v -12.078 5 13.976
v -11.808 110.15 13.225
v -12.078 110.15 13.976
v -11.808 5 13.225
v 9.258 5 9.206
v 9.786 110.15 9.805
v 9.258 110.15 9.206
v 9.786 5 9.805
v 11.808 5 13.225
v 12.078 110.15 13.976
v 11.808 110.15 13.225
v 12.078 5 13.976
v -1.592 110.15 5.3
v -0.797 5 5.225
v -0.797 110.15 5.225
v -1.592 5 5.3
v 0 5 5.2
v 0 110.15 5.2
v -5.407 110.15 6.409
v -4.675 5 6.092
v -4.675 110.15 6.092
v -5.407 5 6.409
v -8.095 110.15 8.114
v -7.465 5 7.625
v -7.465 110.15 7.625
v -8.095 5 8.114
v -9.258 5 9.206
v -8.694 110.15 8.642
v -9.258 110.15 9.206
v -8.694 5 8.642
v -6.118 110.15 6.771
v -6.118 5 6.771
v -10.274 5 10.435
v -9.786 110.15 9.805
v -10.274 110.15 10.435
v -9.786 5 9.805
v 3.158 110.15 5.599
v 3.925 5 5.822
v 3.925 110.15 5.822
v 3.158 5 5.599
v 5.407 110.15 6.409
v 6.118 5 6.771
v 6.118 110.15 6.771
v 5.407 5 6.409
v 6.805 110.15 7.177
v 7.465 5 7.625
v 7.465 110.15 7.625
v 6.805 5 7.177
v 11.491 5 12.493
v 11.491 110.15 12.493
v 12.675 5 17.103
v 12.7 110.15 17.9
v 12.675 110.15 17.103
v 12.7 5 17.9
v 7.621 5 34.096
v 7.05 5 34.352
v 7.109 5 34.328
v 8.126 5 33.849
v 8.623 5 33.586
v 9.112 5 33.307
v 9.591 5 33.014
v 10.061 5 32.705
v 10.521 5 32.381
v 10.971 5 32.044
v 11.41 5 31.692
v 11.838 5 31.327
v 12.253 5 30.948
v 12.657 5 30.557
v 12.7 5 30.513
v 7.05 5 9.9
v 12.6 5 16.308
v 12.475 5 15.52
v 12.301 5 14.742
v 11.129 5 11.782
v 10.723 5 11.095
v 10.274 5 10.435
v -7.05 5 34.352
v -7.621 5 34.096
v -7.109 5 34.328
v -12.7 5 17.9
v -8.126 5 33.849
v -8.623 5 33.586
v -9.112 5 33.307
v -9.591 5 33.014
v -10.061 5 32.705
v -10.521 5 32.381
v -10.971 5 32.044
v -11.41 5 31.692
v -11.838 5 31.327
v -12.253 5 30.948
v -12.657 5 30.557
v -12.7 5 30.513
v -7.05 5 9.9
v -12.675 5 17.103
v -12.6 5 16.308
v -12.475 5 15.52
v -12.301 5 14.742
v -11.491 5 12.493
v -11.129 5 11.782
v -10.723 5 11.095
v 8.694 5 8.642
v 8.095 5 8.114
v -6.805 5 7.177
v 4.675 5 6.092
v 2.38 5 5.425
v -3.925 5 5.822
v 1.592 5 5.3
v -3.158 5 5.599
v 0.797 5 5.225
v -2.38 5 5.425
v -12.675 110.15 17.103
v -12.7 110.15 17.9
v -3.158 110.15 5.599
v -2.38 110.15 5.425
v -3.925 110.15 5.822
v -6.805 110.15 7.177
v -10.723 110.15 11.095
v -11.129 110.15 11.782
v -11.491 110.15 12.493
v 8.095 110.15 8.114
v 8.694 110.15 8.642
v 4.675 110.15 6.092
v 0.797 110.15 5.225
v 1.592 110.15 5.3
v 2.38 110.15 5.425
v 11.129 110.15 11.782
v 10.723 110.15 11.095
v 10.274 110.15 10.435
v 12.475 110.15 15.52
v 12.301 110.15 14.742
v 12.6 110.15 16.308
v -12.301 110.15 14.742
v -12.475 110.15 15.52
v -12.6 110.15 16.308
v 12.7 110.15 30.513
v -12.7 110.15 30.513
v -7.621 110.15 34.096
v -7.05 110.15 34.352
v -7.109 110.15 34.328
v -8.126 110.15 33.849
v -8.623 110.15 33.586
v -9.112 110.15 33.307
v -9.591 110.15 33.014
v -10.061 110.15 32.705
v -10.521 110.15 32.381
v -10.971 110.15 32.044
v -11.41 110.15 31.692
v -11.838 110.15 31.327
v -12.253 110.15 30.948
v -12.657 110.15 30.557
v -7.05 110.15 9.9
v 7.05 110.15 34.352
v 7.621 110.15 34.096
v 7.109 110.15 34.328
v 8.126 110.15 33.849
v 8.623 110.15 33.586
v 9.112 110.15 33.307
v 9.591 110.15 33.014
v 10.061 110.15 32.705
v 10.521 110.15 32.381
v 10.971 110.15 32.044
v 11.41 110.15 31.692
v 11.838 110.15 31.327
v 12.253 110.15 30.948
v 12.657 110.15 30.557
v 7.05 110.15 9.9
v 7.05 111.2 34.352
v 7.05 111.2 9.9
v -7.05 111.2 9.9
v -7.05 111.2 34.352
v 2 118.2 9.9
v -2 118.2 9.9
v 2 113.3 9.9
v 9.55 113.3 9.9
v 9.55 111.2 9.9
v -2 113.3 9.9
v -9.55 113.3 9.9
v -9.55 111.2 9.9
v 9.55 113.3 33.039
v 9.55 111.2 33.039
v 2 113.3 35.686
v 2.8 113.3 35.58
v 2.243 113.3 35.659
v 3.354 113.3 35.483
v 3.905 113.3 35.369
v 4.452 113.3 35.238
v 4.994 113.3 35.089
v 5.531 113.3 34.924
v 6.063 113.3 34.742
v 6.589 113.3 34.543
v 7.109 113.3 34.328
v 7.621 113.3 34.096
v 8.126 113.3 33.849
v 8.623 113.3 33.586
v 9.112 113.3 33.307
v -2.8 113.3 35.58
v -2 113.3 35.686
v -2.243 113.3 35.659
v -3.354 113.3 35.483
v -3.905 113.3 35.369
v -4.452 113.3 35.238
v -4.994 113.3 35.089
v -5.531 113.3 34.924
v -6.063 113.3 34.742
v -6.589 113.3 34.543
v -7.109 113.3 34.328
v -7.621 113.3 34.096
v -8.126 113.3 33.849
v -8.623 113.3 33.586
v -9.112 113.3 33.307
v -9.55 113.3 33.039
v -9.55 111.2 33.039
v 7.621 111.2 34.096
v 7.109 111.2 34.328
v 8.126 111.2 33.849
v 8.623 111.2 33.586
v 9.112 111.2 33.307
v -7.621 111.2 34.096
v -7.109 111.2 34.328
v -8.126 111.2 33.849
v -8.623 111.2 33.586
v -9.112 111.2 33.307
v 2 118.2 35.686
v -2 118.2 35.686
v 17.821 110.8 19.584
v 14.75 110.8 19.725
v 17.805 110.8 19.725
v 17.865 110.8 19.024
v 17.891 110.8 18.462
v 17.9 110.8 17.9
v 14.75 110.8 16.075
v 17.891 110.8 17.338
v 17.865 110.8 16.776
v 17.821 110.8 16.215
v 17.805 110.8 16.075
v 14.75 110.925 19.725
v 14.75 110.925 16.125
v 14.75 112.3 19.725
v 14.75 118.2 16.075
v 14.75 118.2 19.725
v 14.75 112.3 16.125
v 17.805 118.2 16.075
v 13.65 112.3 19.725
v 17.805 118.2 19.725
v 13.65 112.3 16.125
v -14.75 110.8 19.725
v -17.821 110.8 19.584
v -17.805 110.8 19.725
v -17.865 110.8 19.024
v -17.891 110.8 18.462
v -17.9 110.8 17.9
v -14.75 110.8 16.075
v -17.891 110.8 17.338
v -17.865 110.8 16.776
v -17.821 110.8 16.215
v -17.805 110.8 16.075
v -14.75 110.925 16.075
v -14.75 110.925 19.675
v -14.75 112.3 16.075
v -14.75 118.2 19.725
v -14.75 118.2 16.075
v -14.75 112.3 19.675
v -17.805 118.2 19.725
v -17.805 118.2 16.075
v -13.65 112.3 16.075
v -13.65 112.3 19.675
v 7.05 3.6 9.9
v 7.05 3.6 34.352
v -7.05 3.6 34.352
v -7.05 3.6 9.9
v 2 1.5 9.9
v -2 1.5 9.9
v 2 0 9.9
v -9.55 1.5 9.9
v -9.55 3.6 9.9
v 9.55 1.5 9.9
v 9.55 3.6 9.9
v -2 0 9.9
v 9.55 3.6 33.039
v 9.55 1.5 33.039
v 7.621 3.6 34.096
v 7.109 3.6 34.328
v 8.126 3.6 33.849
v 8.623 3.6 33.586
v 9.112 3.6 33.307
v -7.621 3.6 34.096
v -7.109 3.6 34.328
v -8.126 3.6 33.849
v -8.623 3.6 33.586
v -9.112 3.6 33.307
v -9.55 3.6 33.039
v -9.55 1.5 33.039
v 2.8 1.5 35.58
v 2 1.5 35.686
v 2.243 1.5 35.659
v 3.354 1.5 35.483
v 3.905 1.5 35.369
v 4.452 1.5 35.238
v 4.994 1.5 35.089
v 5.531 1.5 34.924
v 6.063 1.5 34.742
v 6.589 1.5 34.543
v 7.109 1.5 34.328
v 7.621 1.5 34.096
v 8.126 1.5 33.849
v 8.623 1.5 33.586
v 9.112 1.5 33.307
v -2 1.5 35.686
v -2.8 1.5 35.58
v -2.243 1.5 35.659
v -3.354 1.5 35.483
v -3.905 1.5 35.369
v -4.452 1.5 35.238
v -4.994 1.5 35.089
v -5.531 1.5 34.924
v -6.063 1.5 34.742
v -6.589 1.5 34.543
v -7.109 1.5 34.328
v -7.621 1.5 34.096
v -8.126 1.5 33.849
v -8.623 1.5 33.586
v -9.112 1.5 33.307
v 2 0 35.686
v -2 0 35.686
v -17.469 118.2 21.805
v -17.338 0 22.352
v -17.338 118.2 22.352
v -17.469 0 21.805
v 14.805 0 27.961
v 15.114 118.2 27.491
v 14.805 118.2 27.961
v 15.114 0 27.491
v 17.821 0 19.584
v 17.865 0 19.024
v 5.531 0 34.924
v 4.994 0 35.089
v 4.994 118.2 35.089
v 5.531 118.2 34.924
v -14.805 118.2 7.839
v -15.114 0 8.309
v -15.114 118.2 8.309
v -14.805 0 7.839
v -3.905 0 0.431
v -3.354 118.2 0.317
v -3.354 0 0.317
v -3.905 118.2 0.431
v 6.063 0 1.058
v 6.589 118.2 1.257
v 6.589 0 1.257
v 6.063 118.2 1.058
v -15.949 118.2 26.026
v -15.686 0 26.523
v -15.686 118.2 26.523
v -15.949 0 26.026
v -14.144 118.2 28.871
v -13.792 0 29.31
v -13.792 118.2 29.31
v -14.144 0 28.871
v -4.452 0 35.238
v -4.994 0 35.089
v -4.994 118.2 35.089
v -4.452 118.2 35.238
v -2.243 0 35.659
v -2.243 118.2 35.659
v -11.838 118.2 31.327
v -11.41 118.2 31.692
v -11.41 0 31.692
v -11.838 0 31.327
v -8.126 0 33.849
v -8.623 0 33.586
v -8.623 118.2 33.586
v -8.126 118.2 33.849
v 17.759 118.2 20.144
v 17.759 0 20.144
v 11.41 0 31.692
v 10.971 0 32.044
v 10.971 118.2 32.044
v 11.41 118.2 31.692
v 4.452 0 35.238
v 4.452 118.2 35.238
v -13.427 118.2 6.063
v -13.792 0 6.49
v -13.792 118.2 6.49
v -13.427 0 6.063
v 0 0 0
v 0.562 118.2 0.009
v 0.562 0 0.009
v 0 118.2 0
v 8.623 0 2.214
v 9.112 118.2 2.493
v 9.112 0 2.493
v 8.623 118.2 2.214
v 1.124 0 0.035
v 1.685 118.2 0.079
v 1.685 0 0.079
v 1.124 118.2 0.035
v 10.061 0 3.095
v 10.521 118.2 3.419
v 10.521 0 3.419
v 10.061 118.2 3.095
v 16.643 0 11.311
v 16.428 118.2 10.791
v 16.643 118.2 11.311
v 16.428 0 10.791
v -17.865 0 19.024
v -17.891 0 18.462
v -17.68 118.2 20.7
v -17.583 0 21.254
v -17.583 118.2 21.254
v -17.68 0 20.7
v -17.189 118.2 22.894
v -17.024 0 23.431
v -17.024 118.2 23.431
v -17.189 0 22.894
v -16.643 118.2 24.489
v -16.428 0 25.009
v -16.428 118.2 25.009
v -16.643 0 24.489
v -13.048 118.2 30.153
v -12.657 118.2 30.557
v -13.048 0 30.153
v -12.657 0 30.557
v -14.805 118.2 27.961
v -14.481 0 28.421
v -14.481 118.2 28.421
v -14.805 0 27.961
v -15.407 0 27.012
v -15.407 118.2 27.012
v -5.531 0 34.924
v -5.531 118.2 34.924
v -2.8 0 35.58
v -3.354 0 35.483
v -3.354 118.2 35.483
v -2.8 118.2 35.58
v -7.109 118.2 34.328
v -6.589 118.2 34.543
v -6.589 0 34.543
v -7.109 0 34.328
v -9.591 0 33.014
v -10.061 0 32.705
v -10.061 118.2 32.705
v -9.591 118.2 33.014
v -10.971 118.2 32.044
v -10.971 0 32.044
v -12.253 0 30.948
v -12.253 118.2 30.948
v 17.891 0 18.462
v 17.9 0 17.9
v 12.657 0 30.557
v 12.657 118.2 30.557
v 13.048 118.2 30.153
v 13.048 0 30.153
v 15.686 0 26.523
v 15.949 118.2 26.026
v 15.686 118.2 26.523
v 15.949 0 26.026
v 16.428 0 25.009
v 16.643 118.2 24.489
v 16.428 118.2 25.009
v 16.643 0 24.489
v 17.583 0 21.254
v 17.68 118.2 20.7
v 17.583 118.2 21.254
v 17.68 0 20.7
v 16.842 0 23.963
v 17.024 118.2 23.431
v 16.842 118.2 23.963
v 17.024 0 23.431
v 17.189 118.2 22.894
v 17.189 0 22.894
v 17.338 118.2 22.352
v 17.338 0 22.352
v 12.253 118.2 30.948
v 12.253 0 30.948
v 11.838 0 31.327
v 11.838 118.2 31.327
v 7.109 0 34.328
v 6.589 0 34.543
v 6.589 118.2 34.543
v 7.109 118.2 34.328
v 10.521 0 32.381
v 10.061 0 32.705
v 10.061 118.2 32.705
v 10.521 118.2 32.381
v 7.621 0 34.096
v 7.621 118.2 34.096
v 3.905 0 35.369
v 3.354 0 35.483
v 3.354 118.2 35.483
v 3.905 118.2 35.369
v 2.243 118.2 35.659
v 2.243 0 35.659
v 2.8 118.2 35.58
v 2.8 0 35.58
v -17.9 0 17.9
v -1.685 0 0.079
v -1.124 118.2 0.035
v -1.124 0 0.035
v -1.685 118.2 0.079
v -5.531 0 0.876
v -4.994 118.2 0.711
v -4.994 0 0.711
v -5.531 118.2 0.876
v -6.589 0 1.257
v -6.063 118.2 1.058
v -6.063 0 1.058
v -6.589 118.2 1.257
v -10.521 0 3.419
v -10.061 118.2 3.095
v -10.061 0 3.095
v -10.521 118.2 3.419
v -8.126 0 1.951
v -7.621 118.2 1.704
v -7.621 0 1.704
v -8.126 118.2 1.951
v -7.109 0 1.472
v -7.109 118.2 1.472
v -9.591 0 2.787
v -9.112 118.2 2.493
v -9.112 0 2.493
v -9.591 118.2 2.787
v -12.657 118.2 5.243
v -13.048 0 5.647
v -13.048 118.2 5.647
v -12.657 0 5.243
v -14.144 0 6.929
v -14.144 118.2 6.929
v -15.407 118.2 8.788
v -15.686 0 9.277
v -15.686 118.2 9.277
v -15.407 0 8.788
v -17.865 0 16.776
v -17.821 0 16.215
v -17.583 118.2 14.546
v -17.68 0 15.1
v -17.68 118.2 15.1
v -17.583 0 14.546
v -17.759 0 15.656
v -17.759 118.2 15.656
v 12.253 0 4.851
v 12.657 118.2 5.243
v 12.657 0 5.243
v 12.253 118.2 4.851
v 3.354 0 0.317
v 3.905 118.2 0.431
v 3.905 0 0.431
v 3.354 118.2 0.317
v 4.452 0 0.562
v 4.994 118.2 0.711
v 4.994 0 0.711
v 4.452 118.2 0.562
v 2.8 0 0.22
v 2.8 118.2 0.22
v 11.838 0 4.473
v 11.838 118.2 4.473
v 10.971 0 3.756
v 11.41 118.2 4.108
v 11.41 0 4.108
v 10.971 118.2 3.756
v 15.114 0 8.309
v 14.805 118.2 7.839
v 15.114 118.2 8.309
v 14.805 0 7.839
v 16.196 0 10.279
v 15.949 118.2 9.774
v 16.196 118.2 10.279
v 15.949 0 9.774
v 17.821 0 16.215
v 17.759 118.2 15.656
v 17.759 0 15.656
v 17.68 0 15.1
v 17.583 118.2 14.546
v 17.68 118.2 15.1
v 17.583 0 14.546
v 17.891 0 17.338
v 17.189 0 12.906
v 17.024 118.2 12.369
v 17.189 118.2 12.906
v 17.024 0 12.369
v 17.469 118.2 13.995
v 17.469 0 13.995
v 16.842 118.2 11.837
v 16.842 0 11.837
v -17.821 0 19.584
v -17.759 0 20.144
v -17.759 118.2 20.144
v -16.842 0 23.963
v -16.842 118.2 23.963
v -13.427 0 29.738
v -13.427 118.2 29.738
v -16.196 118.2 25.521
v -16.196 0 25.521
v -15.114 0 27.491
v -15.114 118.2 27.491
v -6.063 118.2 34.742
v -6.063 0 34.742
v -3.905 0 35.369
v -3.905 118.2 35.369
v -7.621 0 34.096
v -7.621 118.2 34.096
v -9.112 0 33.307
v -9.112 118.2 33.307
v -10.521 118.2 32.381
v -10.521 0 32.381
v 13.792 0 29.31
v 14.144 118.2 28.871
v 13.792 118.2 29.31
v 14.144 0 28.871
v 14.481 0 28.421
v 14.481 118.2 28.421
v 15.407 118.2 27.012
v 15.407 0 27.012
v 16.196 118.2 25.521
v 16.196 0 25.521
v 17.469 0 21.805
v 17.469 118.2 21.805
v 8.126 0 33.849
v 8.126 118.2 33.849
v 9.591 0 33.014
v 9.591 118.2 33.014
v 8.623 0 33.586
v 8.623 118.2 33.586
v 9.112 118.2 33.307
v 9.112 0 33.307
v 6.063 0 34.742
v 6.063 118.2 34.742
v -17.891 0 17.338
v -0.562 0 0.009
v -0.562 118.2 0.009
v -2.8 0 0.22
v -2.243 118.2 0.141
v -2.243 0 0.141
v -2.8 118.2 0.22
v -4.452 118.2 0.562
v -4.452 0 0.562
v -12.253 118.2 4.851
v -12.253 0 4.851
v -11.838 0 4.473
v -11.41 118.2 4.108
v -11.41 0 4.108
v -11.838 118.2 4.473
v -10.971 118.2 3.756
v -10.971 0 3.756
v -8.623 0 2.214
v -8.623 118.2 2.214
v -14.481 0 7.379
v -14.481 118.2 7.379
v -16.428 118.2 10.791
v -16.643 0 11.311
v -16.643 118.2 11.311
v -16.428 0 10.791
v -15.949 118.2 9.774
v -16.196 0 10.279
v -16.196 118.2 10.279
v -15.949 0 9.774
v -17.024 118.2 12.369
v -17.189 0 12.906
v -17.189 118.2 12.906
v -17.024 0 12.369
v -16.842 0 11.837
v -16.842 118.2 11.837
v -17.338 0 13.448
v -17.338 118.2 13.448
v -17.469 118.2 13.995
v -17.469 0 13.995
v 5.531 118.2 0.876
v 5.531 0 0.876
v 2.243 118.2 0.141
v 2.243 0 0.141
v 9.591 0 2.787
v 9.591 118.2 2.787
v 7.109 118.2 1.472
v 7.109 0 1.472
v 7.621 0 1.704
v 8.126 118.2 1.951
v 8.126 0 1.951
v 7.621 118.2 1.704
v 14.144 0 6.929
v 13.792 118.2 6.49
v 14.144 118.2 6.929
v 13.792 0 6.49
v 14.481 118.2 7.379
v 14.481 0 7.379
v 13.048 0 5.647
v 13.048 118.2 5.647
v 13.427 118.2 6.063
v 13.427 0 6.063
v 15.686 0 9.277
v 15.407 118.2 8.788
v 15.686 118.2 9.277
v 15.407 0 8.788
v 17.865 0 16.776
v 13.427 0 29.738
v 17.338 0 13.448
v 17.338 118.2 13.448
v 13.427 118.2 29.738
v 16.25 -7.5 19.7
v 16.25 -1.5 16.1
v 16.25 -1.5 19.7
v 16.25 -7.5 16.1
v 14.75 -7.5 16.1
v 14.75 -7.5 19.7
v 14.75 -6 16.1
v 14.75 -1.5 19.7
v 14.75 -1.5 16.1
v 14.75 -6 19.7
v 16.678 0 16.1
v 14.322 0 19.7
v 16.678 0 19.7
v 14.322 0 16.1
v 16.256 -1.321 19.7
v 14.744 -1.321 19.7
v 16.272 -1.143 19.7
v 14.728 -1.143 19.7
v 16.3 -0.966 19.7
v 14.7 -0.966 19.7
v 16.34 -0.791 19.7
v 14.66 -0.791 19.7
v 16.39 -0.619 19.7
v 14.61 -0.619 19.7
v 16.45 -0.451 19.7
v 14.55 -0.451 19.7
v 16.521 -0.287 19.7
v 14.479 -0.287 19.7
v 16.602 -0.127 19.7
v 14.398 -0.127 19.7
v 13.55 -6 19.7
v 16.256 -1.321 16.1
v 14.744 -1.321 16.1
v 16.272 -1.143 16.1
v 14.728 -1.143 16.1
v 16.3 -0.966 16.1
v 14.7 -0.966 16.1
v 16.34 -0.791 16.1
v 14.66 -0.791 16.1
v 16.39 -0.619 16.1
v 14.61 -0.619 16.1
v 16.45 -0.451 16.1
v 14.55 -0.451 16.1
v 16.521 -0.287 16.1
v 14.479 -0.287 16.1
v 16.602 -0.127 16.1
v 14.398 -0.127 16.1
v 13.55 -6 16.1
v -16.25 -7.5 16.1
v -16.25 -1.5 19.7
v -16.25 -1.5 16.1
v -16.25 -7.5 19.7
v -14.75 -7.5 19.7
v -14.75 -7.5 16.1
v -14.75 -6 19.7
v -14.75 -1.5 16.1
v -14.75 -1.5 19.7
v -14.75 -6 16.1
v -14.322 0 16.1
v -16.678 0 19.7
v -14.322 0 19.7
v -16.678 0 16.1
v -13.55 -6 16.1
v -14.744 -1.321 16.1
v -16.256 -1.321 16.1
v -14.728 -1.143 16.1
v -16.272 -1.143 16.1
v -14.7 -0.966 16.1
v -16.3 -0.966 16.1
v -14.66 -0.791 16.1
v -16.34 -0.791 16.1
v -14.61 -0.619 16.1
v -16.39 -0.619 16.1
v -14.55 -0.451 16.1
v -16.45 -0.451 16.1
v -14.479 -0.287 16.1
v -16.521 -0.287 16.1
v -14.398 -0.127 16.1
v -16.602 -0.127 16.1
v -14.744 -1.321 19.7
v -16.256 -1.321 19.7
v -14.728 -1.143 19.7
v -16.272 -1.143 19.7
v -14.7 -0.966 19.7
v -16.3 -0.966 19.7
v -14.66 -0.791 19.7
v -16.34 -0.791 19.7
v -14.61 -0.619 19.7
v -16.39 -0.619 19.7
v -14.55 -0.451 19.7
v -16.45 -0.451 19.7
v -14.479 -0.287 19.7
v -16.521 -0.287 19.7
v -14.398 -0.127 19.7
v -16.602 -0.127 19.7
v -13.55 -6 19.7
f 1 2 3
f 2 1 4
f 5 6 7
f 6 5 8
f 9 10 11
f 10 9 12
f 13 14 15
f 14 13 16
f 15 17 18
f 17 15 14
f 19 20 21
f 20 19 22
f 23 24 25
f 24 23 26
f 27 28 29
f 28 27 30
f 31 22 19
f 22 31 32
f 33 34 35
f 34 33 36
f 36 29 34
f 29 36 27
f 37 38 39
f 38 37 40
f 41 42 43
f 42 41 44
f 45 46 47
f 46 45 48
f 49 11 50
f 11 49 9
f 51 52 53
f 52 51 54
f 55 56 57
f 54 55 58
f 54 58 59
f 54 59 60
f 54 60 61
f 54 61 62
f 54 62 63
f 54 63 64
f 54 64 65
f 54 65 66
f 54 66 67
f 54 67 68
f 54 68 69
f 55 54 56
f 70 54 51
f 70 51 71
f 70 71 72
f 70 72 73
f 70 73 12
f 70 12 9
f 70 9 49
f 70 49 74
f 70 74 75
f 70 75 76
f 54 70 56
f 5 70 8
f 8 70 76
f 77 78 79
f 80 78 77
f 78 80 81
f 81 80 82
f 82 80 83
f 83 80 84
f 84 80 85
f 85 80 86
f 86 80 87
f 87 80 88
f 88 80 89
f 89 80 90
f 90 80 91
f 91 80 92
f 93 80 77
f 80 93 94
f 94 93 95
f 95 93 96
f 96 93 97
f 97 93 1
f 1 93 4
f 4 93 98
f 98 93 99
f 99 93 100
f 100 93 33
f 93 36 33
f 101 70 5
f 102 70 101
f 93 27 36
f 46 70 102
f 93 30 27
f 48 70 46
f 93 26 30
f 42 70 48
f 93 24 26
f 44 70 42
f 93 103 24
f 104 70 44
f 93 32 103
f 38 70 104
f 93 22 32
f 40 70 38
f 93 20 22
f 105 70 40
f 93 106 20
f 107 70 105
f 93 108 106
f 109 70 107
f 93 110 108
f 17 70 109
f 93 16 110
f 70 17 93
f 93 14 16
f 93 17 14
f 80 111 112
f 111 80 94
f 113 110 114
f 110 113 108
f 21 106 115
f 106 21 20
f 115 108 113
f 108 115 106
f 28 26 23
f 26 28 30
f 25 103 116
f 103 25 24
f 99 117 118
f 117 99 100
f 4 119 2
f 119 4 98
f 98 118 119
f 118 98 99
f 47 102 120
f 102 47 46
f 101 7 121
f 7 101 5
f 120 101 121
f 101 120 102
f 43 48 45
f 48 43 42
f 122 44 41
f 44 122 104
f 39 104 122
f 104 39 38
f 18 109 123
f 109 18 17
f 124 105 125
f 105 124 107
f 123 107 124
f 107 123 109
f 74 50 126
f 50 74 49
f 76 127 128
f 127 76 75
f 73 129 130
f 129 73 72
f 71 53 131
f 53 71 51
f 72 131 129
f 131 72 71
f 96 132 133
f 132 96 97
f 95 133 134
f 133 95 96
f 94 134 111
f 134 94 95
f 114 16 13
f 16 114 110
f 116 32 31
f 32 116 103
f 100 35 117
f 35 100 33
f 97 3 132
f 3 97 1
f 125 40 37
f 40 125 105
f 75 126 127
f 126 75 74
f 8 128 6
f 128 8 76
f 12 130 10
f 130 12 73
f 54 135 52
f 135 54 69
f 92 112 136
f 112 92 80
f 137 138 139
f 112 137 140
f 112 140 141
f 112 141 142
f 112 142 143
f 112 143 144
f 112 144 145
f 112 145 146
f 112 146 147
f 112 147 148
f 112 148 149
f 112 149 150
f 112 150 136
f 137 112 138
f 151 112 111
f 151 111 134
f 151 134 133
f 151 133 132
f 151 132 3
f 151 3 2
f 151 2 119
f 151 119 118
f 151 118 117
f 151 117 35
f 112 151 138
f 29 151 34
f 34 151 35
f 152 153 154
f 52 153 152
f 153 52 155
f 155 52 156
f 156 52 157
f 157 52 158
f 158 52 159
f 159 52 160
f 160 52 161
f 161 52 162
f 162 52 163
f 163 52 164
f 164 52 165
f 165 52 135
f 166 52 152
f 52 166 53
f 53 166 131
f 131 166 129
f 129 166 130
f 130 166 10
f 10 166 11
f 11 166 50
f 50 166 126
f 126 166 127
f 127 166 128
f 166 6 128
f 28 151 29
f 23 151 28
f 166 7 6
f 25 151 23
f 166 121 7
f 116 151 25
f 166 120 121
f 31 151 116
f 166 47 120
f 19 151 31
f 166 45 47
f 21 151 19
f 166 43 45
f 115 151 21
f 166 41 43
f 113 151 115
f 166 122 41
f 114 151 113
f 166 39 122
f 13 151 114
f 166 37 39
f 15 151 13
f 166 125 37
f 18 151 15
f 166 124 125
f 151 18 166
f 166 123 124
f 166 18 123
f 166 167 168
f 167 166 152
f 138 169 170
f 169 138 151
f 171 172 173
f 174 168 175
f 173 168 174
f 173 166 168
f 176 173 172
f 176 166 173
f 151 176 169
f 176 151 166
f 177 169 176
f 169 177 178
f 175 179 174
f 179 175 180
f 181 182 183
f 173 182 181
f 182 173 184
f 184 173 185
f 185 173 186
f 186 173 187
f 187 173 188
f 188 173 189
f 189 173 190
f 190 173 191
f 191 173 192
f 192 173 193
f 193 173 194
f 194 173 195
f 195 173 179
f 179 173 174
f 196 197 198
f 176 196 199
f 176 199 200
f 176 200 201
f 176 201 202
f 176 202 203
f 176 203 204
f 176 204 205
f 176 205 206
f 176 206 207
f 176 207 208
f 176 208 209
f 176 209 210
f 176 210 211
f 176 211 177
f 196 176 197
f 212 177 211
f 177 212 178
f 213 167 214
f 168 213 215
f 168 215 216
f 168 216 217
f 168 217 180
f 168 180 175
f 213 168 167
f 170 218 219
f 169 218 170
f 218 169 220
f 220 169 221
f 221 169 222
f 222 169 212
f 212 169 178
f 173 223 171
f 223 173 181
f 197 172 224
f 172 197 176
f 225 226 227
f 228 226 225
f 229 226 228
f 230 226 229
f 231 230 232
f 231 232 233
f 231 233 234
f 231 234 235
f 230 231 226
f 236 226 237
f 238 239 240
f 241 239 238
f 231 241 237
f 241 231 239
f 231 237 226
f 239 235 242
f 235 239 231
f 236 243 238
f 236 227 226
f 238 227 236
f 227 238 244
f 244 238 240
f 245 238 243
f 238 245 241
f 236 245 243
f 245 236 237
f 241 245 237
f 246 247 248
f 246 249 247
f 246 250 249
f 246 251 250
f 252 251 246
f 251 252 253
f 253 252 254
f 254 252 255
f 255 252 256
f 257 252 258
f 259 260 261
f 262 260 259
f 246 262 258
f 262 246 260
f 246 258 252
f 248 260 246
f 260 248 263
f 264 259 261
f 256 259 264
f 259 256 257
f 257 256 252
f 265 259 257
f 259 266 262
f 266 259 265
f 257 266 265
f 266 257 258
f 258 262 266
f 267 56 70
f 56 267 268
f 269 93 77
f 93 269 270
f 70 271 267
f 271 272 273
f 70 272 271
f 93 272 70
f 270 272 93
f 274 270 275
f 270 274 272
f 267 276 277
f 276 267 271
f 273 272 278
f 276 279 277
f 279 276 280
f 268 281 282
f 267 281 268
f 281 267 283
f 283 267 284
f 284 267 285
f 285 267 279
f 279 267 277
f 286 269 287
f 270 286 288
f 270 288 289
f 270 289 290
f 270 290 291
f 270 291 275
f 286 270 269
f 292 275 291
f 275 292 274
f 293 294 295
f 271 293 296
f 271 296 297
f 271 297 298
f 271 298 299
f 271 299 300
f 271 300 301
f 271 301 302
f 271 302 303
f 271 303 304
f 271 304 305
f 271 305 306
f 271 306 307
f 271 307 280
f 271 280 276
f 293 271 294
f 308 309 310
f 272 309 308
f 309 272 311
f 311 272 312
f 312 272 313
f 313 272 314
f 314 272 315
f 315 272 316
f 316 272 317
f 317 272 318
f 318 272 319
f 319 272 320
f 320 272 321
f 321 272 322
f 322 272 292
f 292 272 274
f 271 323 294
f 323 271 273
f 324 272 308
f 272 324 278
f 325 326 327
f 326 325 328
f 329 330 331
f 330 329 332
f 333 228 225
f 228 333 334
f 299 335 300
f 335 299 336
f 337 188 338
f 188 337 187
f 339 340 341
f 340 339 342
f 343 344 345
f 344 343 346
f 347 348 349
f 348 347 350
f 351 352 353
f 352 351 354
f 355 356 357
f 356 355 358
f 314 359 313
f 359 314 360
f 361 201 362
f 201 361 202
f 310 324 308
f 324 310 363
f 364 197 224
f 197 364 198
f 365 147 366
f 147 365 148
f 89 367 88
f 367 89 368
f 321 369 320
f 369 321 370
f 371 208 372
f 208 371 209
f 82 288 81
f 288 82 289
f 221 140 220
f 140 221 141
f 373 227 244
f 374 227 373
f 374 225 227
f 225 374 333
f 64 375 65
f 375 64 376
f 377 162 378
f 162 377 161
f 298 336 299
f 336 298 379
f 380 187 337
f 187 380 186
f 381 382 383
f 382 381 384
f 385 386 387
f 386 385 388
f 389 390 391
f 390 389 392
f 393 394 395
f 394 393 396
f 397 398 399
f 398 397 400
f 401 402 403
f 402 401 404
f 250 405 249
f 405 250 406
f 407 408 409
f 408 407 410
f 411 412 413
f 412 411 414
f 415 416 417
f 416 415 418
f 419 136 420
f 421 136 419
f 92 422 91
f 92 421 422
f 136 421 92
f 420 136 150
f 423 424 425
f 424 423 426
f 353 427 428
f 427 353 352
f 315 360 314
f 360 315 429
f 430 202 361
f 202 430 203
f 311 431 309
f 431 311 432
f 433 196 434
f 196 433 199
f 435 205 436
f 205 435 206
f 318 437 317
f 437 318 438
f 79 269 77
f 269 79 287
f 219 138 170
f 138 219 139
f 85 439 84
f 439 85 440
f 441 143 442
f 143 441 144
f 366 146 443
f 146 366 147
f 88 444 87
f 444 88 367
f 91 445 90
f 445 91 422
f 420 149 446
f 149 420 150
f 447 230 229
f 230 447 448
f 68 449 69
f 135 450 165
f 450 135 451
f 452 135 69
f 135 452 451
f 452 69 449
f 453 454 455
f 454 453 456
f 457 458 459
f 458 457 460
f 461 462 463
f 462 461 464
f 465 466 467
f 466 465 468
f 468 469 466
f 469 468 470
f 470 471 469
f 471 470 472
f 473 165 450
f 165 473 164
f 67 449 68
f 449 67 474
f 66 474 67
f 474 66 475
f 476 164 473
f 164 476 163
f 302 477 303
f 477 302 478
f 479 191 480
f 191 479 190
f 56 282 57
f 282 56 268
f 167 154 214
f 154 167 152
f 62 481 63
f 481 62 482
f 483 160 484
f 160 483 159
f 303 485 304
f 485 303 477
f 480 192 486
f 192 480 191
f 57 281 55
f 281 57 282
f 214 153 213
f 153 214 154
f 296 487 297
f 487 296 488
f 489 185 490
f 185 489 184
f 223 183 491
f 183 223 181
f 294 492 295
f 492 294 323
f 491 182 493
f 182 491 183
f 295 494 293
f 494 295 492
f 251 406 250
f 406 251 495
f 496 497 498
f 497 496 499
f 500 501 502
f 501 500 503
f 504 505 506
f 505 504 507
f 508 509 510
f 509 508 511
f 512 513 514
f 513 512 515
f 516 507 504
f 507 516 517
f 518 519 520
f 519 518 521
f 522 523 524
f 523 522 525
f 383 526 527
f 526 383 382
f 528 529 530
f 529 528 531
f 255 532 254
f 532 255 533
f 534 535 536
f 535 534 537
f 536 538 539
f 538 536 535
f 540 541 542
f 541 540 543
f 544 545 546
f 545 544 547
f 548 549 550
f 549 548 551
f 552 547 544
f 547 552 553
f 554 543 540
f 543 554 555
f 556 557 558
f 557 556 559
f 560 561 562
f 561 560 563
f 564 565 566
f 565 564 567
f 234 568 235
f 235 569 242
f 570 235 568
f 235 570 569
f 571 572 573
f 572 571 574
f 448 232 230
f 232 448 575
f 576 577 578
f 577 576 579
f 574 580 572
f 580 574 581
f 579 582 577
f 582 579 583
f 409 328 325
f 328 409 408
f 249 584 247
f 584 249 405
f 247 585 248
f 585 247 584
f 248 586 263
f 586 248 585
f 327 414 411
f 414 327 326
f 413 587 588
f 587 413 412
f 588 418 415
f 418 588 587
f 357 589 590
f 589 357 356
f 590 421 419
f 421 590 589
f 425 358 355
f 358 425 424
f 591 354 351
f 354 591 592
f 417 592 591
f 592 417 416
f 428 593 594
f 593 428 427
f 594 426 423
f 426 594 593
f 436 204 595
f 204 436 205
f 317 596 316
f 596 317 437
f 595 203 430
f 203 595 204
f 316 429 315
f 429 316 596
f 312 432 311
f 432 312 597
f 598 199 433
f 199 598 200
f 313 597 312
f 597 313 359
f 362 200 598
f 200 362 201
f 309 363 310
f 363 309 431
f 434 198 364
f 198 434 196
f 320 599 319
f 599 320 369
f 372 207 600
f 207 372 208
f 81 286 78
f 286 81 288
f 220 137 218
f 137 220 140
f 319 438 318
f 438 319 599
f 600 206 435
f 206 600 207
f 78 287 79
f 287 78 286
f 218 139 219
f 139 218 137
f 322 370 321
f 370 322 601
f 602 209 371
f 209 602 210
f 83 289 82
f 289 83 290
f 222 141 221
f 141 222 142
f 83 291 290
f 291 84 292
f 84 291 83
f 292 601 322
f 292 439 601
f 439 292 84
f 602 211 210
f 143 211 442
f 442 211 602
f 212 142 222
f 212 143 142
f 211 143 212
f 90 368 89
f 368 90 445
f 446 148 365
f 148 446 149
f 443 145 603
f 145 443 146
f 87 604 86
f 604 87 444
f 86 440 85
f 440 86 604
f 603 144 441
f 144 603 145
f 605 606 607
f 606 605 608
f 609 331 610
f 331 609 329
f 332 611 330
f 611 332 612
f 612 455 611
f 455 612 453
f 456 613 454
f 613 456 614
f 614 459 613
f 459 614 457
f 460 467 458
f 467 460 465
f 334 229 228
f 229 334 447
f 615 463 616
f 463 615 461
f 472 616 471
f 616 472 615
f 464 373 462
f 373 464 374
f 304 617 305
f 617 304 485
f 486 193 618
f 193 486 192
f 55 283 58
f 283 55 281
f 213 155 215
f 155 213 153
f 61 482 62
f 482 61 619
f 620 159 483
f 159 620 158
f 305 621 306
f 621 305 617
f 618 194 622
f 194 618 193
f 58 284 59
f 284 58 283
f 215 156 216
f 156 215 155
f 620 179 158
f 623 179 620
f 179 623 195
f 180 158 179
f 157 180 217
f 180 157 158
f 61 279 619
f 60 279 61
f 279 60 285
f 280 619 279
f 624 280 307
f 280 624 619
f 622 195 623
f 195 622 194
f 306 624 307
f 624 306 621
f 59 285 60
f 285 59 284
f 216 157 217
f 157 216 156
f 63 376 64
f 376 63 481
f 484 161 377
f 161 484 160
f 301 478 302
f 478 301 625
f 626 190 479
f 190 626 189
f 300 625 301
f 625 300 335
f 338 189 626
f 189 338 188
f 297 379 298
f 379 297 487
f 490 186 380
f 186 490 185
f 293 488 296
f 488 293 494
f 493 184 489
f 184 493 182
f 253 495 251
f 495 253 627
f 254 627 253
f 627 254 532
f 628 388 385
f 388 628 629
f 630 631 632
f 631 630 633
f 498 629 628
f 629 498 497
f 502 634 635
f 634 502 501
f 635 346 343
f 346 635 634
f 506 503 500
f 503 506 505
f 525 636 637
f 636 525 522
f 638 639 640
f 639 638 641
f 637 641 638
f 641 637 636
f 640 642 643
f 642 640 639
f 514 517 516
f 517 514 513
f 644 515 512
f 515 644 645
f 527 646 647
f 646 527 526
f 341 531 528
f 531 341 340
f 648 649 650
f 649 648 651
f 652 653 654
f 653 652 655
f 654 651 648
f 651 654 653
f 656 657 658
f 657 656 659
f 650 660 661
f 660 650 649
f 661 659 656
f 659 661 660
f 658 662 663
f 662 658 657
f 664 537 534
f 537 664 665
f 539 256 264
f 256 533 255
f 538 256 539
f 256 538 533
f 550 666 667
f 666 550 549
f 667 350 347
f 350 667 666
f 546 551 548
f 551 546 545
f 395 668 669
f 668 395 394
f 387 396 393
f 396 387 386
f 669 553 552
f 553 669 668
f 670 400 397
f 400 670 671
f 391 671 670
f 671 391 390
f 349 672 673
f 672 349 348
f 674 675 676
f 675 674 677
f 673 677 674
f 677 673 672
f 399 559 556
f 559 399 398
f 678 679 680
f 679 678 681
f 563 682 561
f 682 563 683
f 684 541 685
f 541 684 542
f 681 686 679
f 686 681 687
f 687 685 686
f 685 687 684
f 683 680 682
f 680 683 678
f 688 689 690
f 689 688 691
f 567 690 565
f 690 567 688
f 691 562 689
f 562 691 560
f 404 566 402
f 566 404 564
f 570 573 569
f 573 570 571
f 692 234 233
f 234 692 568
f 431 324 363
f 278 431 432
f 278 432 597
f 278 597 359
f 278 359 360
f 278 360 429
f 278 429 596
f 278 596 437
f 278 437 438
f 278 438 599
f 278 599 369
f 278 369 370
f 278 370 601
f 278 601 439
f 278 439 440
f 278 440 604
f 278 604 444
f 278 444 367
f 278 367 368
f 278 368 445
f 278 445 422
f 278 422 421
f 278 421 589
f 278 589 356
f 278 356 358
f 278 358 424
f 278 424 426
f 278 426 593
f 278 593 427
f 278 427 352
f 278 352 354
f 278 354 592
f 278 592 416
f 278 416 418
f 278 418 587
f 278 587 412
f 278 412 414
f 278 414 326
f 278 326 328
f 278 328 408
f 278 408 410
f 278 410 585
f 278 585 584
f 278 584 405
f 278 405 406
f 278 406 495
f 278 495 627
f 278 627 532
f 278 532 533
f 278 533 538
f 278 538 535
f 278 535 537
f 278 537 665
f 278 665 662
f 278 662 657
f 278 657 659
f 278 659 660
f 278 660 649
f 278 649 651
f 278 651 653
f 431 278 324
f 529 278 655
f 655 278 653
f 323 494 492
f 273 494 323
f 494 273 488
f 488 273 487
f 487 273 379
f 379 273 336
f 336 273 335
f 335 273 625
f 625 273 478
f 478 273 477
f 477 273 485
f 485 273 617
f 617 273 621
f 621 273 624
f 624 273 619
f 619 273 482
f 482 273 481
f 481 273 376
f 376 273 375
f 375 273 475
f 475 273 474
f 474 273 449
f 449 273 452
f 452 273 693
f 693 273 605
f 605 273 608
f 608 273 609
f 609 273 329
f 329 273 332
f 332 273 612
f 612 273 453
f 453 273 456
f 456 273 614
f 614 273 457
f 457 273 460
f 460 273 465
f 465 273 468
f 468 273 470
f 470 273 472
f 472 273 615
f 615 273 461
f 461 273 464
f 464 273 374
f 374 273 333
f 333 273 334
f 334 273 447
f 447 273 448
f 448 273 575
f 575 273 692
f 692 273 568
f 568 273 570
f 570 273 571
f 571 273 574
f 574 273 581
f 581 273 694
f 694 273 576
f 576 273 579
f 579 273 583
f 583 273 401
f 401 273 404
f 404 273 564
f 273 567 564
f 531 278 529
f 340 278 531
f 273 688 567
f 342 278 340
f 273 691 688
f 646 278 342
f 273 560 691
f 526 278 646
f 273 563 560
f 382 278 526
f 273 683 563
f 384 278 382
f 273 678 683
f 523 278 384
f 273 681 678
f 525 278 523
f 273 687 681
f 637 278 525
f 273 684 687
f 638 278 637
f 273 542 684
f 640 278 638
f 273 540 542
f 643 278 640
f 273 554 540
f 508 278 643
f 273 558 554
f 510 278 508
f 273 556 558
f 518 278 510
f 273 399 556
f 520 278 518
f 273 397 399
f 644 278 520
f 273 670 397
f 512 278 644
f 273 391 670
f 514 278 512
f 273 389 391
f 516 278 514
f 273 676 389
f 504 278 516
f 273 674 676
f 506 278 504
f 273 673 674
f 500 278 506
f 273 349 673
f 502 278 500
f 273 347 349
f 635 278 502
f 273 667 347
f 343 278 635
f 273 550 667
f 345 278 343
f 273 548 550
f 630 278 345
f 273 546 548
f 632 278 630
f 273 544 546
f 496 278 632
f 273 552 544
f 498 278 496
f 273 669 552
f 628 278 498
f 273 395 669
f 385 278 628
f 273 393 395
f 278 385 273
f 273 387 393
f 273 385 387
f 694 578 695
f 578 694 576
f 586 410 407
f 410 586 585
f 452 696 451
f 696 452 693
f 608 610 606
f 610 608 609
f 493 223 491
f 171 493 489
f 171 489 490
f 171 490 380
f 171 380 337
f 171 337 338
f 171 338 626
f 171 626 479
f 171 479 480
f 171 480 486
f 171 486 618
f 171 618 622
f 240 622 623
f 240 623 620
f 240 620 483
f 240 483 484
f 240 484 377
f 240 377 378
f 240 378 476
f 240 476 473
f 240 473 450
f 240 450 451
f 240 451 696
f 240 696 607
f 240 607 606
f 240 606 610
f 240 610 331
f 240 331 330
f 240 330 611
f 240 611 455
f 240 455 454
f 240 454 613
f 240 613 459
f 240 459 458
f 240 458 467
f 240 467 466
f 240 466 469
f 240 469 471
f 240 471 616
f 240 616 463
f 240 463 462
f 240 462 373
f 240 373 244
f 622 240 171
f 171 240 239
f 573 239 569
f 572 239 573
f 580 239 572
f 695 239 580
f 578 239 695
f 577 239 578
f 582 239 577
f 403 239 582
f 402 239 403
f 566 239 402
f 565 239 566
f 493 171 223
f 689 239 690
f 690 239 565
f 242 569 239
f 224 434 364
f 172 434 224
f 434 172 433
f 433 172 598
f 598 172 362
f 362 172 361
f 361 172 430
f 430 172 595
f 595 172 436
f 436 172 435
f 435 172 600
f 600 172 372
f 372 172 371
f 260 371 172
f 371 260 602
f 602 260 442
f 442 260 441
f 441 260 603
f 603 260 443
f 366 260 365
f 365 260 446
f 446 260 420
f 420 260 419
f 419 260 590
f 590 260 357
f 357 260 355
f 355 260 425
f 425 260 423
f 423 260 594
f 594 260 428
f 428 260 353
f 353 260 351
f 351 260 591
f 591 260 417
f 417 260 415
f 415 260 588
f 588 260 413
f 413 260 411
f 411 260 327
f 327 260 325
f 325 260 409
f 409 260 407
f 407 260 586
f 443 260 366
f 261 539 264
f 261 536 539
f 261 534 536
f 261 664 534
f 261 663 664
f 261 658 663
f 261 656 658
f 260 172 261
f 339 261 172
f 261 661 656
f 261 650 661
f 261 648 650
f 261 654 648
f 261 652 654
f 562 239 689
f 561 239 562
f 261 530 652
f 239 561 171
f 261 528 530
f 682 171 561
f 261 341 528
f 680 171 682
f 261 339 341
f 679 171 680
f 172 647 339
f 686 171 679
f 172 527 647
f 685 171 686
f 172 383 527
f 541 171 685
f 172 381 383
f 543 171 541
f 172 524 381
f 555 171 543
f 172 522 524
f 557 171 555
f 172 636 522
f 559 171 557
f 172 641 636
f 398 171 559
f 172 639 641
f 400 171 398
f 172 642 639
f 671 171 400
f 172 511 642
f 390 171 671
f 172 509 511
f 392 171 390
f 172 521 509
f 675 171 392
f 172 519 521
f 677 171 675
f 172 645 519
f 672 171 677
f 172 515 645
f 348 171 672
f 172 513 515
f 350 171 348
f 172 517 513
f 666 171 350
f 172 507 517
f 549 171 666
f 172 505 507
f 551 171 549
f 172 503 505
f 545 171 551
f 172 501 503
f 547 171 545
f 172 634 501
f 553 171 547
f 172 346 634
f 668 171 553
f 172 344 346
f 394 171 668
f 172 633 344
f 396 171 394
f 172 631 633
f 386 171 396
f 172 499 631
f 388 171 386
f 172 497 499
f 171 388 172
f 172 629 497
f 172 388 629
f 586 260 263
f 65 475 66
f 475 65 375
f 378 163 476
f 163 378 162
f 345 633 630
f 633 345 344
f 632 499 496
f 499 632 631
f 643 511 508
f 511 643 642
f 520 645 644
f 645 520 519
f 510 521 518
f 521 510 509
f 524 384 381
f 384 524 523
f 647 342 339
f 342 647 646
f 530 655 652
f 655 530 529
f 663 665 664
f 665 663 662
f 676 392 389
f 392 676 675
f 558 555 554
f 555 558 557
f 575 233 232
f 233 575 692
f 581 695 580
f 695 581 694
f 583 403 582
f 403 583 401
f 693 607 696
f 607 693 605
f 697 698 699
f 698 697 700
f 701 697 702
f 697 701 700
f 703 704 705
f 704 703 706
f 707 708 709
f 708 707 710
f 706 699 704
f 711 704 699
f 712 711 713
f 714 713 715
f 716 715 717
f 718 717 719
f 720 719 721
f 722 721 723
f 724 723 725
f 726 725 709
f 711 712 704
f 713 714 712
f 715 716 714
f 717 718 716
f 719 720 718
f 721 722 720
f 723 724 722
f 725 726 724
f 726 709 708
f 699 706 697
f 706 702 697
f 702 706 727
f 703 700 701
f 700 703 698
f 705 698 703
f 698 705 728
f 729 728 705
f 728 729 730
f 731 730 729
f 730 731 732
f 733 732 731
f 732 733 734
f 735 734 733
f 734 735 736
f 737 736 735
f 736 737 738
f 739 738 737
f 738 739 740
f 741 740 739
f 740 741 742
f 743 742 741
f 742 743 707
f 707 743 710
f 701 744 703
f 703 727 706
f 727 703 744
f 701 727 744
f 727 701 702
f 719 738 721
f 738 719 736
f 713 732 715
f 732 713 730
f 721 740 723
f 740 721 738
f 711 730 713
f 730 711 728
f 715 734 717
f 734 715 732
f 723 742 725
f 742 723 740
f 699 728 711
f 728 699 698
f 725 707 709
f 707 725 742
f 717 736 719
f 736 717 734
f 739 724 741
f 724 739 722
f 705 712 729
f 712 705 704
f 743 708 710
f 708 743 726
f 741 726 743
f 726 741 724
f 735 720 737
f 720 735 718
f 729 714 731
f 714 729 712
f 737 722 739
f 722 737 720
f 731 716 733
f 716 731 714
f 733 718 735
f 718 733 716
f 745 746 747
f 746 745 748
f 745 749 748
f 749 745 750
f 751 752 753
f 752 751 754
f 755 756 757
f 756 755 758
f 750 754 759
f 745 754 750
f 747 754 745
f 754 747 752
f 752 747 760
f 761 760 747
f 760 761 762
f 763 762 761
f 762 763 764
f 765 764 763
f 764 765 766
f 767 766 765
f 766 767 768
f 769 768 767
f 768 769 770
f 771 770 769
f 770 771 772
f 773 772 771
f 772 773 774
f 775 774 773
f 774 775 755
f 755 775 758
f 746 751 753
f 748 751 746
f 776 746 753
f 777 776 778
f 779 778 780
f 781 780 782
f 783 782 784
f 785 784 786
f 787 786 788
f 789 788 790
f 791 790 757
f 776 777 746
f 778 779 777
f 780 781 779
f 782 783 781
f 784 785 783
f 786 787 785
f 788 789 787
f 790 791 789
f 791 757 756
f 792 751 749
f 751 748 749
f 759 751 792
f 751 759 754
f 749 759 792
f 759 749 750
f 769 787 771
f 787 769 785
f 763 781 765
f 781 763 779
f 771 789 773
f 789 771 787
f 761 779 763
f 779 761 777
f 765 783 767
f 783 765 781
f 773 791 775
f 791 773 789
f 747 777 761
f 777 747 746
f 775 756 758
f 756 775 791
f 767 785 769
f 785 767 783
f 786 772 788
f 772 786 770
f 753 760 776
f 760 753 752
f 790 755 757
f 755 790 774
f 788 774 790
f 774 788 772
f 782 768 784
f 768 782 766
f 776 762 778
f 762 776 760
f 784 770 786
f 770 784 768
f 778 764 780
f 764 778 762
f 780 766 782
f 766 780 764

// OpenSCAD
holder_outer_diameter=35.8;
battery_positive_diameter=6.5;
battery_diameter=25.4;
battery_len=46.1;
battery_positive_len=2;
battery_positive_div=1;
battery_count=2;
connector_len=6;

positive_plate_depth=2.1;
negative_plate_depth=10.0;
plate_height=19.1;
plate_width=19.1;
plate_pad = 5;

wire_channel=4;

$fn=100;
cell_len = (battery_len + battery_positive_len);
inner_len = (cell_len * battery_count) + negative_plate_depth;
outer_len = inner_len + (connector_len * 2);

 module prism(l, w, h){
   polyhedron(
       points=[[0,0,0], [l,0,0], [l,w,0], [0,w,0], [0,w,h], [l,w,h]],
       faces=[[0,1,2,3],[5,4,3,2],[0,4,5,1],[0,3,4],[5,2,1]]
   );
};
       
module cantilever(x,y,z,s) {
    CANTILEVER_LENGTH=20*s;
    CANTILEVER_HEIGHT=12*s;
    CANTILEVER_WIDTH=5*s;
    CANTILEVER_DEPTH=5*s;
    CANTILEVER_TAB=4*s;
    CANTILEVER_BASE_HEIGHT=5*s;
    CANTILEVER_BASE_FACTOR=2;
    cantilever_base = CANTILEVER_BASE_FACTOR * CANTILEVER_HEIGHT;
    translate([x-(CANTILEVER_WIDTH/2),y-(CANTILEVER_HEIGHT/2), z]){
        cube([CANTILEVER_WIDTH,CANTILEVER_HEIGHT,CANTILEVER_LENGTH + CANTILEVER_BASE_HEIGHT]);
        translate([CANTILEVER_WIDTH,CANTILEVER_HEIGHT,CANTILEVER_LENGTH+CANTILEVER_BASE_HEIGHT]){
            rotate([90,180,90]) {
              prism(CANTILEVER_HEIGHT, CANTILEVER_DEPTH, CANTILEVER_TAB);
            };
        };
    };
    FLARE_DIAMETER=cantilever_base - CANTILEVER_WIDTH;
    translate([x-(cantilever_base/2), y-(CANTILEVER_HEIGHT/2), z]) {
        difference() {
            cube([cantilever_base, CANTILEVER_HEIGHT, CANTILEVER_BASE_HEIGHT]);
            union() {
                translate([0,CANTILEVER_HEIGHT+1,CANTILEVER_BASE_HEIGHT]){
                    rotate([90,0,0]){
                        cylinder(h=CANTILEVER_HEIGHT+2, d=FLARE_DIAMETER, center=false);
                    };
                };
                translate([cantilever_base,CANTILEVER_HEIGHT+1,CANTILEVER_BASE_HEIGHT]){
                    rotate([90,0,0]){
                        cylinder(h=CANTILEVER_HEIGHT+2, d=FLARE_DIAMETER, center=false);
                    };
                };
            };
        };
    };
};

module cantilever_tab(x,y,z,s){
    CANTILEVER_LENGTH=20*s;
    CANTILEVER_HEIGHT=12*s;
    CANTILEVER_WIDTH=5*s;
    CANTILEVER_DEPTH=5*s;
    CANTILEVER_TAB=4*s;
    CANTILEVER_BASE_HEIGHT=5*s;
    CANTILEVER_BASE_FACTOR=2;
    cantilever_base = CANTILEVER_BASE_FACTOR * CANTILEVER_HEIGHT;
    translate([x-(cantilever_base/2), y-(CANTILEVER_HEIGHT/2)-0.025, z]) {
        cube([cantilever_base/2+CANTILEVER_WIDTH/2,CANTILEVER_HEIGHT+0.05,CANTILEVER_LENGTH + CANTILEVER_BASE_HEIGHT]);
            translate([cantilever_base/2+CANTILEVER_WIDTH/2-0.1,CANTILEVER_HEIGHT,CANTILEVER_LENGTH+CANTILEVER_BASE_HEIGHT]){
            rotate([90,180,90]) {
              prism(CANTILEVER_HEIGHT, CANTILEVER_DEPTH, CANTILEVER_TAB);
            };
        };
    };
};

module battery(x,y,z) {
     union() {
        translate([x,y,z + battery_len-0.1]) {
            cylinder($fn=100, h=battery_positive_len, d=battery_positive_diameter, center=false);
        }
        translate([x,y,z-battery_positive_div]) {
            cylinder($fn=100, h=battery_len+battery_positive_div+battery_positive_len, d=battery_diameter, center=false);
        }
        translate([x-(battery_diameter/2),y,z-battery_positive_div]) {
            cube([battery_diameter, battery_diameter*3,cell_len+battery_positive_div], center=false);
        }
    };
};
CANTILEVER_DISPLACEMENT=29.2;
translate([0,0,holder_outer_diameter/2]){
    PLATE_GAP = plate_width-plate_pad;
    rotate([-90,180,0]){
        difference() {
            union()
            cylinder($fn=200, h=outer_len, d=holder_outer_diameter, center=false);
            union() {
                //Cells
                for (i = [0:battery_count-1]){
                    battery(0,0,connector_len+cell_len*i);
                }
                //Positive plate
                translate([-PLATE_GAP/2,-8,connector_len/2]){
                    cube([PLATE_GAP,holder_outer_diameter,positive_plate_depth]);
                }
                translate([-plate_width/2, -8, connector_len/4]){
                    cube([plate_width, holder_outer_diameter,positive_plate_depth]);
                }
                
                translate([-wire_channel/2, -8, -8]) {
                    cube([wire_channel, holder_outer_diameter,10]);
                }
                //Negative plate
                translate([0,0,negative_plate_depth+connector_len/2+cell_len*battery_count-1]){
                    translate([-PLATE_GAP/2, -8, -negative_plate_depth+connector_len/2]){
                        cube([PLATE_GAP,holder_outer_diameter,negative_plate_depth+0.1]);
                    }
                    battery(0,0,-cell_len+connector_len/2-positive_plate_depth/2);
                    translate([-plate_width/2,-8,connector_len/2]){
                        cube([plate_width, holder_outer_diameter,positive_plate_depth]);
                    }

                    translate([-wire_channel/2, -8, 1]) {
                        cube([wire_channel, holder_outer_diameter,10]);
                    }
                }
                //Cantilever slots
                rotate([180,0,0]) {
                    rotate([0,0,0]){
                        translate([-CANTILEVER_DISPLACEMENT,0,-outer_len-0.1]){
                            cantilever_tab(battery_diameter/2+1,0,0,0.3);
                        };
                    };
                    rotate([0,0,180]){
                        translate([-CANTILEVER_DISPLACEMENT,0,-outer_len-0.1]){
                            cantilever_tab(battery_diameter/2+1,0,0,0.3);
                        };
                    };
                }
            }
        }
        //Cantilevers
        translate([-CANTILEVER_DISPLACEMENT,0,0]) {
            rotate([0,180,180]){
                cantilever(battery_diameter/2+1,0,0,0.3);
            };
        }
        translate([CANTILEVER_DISPLACEMENT,0,0]) {
            rotate([0,180,0]){
                cantilever(battery_diameter/2+1,0,0,0.3);
            };
        }
    };
};


/*
translate([0,0,connector_len]) {
    difference() {
        cylinder($fn=200, h=battery_positive_div, d=holder_outer_diameter, center=false);
        translate([-(battery_positive_diameter),-(holder_outer_diameter/2),-0.1]) {
            cube([battery_positive_diameter*2,holder_outer_diameter,battery_positive_div+0.2]);
        }
    }
}
*/
